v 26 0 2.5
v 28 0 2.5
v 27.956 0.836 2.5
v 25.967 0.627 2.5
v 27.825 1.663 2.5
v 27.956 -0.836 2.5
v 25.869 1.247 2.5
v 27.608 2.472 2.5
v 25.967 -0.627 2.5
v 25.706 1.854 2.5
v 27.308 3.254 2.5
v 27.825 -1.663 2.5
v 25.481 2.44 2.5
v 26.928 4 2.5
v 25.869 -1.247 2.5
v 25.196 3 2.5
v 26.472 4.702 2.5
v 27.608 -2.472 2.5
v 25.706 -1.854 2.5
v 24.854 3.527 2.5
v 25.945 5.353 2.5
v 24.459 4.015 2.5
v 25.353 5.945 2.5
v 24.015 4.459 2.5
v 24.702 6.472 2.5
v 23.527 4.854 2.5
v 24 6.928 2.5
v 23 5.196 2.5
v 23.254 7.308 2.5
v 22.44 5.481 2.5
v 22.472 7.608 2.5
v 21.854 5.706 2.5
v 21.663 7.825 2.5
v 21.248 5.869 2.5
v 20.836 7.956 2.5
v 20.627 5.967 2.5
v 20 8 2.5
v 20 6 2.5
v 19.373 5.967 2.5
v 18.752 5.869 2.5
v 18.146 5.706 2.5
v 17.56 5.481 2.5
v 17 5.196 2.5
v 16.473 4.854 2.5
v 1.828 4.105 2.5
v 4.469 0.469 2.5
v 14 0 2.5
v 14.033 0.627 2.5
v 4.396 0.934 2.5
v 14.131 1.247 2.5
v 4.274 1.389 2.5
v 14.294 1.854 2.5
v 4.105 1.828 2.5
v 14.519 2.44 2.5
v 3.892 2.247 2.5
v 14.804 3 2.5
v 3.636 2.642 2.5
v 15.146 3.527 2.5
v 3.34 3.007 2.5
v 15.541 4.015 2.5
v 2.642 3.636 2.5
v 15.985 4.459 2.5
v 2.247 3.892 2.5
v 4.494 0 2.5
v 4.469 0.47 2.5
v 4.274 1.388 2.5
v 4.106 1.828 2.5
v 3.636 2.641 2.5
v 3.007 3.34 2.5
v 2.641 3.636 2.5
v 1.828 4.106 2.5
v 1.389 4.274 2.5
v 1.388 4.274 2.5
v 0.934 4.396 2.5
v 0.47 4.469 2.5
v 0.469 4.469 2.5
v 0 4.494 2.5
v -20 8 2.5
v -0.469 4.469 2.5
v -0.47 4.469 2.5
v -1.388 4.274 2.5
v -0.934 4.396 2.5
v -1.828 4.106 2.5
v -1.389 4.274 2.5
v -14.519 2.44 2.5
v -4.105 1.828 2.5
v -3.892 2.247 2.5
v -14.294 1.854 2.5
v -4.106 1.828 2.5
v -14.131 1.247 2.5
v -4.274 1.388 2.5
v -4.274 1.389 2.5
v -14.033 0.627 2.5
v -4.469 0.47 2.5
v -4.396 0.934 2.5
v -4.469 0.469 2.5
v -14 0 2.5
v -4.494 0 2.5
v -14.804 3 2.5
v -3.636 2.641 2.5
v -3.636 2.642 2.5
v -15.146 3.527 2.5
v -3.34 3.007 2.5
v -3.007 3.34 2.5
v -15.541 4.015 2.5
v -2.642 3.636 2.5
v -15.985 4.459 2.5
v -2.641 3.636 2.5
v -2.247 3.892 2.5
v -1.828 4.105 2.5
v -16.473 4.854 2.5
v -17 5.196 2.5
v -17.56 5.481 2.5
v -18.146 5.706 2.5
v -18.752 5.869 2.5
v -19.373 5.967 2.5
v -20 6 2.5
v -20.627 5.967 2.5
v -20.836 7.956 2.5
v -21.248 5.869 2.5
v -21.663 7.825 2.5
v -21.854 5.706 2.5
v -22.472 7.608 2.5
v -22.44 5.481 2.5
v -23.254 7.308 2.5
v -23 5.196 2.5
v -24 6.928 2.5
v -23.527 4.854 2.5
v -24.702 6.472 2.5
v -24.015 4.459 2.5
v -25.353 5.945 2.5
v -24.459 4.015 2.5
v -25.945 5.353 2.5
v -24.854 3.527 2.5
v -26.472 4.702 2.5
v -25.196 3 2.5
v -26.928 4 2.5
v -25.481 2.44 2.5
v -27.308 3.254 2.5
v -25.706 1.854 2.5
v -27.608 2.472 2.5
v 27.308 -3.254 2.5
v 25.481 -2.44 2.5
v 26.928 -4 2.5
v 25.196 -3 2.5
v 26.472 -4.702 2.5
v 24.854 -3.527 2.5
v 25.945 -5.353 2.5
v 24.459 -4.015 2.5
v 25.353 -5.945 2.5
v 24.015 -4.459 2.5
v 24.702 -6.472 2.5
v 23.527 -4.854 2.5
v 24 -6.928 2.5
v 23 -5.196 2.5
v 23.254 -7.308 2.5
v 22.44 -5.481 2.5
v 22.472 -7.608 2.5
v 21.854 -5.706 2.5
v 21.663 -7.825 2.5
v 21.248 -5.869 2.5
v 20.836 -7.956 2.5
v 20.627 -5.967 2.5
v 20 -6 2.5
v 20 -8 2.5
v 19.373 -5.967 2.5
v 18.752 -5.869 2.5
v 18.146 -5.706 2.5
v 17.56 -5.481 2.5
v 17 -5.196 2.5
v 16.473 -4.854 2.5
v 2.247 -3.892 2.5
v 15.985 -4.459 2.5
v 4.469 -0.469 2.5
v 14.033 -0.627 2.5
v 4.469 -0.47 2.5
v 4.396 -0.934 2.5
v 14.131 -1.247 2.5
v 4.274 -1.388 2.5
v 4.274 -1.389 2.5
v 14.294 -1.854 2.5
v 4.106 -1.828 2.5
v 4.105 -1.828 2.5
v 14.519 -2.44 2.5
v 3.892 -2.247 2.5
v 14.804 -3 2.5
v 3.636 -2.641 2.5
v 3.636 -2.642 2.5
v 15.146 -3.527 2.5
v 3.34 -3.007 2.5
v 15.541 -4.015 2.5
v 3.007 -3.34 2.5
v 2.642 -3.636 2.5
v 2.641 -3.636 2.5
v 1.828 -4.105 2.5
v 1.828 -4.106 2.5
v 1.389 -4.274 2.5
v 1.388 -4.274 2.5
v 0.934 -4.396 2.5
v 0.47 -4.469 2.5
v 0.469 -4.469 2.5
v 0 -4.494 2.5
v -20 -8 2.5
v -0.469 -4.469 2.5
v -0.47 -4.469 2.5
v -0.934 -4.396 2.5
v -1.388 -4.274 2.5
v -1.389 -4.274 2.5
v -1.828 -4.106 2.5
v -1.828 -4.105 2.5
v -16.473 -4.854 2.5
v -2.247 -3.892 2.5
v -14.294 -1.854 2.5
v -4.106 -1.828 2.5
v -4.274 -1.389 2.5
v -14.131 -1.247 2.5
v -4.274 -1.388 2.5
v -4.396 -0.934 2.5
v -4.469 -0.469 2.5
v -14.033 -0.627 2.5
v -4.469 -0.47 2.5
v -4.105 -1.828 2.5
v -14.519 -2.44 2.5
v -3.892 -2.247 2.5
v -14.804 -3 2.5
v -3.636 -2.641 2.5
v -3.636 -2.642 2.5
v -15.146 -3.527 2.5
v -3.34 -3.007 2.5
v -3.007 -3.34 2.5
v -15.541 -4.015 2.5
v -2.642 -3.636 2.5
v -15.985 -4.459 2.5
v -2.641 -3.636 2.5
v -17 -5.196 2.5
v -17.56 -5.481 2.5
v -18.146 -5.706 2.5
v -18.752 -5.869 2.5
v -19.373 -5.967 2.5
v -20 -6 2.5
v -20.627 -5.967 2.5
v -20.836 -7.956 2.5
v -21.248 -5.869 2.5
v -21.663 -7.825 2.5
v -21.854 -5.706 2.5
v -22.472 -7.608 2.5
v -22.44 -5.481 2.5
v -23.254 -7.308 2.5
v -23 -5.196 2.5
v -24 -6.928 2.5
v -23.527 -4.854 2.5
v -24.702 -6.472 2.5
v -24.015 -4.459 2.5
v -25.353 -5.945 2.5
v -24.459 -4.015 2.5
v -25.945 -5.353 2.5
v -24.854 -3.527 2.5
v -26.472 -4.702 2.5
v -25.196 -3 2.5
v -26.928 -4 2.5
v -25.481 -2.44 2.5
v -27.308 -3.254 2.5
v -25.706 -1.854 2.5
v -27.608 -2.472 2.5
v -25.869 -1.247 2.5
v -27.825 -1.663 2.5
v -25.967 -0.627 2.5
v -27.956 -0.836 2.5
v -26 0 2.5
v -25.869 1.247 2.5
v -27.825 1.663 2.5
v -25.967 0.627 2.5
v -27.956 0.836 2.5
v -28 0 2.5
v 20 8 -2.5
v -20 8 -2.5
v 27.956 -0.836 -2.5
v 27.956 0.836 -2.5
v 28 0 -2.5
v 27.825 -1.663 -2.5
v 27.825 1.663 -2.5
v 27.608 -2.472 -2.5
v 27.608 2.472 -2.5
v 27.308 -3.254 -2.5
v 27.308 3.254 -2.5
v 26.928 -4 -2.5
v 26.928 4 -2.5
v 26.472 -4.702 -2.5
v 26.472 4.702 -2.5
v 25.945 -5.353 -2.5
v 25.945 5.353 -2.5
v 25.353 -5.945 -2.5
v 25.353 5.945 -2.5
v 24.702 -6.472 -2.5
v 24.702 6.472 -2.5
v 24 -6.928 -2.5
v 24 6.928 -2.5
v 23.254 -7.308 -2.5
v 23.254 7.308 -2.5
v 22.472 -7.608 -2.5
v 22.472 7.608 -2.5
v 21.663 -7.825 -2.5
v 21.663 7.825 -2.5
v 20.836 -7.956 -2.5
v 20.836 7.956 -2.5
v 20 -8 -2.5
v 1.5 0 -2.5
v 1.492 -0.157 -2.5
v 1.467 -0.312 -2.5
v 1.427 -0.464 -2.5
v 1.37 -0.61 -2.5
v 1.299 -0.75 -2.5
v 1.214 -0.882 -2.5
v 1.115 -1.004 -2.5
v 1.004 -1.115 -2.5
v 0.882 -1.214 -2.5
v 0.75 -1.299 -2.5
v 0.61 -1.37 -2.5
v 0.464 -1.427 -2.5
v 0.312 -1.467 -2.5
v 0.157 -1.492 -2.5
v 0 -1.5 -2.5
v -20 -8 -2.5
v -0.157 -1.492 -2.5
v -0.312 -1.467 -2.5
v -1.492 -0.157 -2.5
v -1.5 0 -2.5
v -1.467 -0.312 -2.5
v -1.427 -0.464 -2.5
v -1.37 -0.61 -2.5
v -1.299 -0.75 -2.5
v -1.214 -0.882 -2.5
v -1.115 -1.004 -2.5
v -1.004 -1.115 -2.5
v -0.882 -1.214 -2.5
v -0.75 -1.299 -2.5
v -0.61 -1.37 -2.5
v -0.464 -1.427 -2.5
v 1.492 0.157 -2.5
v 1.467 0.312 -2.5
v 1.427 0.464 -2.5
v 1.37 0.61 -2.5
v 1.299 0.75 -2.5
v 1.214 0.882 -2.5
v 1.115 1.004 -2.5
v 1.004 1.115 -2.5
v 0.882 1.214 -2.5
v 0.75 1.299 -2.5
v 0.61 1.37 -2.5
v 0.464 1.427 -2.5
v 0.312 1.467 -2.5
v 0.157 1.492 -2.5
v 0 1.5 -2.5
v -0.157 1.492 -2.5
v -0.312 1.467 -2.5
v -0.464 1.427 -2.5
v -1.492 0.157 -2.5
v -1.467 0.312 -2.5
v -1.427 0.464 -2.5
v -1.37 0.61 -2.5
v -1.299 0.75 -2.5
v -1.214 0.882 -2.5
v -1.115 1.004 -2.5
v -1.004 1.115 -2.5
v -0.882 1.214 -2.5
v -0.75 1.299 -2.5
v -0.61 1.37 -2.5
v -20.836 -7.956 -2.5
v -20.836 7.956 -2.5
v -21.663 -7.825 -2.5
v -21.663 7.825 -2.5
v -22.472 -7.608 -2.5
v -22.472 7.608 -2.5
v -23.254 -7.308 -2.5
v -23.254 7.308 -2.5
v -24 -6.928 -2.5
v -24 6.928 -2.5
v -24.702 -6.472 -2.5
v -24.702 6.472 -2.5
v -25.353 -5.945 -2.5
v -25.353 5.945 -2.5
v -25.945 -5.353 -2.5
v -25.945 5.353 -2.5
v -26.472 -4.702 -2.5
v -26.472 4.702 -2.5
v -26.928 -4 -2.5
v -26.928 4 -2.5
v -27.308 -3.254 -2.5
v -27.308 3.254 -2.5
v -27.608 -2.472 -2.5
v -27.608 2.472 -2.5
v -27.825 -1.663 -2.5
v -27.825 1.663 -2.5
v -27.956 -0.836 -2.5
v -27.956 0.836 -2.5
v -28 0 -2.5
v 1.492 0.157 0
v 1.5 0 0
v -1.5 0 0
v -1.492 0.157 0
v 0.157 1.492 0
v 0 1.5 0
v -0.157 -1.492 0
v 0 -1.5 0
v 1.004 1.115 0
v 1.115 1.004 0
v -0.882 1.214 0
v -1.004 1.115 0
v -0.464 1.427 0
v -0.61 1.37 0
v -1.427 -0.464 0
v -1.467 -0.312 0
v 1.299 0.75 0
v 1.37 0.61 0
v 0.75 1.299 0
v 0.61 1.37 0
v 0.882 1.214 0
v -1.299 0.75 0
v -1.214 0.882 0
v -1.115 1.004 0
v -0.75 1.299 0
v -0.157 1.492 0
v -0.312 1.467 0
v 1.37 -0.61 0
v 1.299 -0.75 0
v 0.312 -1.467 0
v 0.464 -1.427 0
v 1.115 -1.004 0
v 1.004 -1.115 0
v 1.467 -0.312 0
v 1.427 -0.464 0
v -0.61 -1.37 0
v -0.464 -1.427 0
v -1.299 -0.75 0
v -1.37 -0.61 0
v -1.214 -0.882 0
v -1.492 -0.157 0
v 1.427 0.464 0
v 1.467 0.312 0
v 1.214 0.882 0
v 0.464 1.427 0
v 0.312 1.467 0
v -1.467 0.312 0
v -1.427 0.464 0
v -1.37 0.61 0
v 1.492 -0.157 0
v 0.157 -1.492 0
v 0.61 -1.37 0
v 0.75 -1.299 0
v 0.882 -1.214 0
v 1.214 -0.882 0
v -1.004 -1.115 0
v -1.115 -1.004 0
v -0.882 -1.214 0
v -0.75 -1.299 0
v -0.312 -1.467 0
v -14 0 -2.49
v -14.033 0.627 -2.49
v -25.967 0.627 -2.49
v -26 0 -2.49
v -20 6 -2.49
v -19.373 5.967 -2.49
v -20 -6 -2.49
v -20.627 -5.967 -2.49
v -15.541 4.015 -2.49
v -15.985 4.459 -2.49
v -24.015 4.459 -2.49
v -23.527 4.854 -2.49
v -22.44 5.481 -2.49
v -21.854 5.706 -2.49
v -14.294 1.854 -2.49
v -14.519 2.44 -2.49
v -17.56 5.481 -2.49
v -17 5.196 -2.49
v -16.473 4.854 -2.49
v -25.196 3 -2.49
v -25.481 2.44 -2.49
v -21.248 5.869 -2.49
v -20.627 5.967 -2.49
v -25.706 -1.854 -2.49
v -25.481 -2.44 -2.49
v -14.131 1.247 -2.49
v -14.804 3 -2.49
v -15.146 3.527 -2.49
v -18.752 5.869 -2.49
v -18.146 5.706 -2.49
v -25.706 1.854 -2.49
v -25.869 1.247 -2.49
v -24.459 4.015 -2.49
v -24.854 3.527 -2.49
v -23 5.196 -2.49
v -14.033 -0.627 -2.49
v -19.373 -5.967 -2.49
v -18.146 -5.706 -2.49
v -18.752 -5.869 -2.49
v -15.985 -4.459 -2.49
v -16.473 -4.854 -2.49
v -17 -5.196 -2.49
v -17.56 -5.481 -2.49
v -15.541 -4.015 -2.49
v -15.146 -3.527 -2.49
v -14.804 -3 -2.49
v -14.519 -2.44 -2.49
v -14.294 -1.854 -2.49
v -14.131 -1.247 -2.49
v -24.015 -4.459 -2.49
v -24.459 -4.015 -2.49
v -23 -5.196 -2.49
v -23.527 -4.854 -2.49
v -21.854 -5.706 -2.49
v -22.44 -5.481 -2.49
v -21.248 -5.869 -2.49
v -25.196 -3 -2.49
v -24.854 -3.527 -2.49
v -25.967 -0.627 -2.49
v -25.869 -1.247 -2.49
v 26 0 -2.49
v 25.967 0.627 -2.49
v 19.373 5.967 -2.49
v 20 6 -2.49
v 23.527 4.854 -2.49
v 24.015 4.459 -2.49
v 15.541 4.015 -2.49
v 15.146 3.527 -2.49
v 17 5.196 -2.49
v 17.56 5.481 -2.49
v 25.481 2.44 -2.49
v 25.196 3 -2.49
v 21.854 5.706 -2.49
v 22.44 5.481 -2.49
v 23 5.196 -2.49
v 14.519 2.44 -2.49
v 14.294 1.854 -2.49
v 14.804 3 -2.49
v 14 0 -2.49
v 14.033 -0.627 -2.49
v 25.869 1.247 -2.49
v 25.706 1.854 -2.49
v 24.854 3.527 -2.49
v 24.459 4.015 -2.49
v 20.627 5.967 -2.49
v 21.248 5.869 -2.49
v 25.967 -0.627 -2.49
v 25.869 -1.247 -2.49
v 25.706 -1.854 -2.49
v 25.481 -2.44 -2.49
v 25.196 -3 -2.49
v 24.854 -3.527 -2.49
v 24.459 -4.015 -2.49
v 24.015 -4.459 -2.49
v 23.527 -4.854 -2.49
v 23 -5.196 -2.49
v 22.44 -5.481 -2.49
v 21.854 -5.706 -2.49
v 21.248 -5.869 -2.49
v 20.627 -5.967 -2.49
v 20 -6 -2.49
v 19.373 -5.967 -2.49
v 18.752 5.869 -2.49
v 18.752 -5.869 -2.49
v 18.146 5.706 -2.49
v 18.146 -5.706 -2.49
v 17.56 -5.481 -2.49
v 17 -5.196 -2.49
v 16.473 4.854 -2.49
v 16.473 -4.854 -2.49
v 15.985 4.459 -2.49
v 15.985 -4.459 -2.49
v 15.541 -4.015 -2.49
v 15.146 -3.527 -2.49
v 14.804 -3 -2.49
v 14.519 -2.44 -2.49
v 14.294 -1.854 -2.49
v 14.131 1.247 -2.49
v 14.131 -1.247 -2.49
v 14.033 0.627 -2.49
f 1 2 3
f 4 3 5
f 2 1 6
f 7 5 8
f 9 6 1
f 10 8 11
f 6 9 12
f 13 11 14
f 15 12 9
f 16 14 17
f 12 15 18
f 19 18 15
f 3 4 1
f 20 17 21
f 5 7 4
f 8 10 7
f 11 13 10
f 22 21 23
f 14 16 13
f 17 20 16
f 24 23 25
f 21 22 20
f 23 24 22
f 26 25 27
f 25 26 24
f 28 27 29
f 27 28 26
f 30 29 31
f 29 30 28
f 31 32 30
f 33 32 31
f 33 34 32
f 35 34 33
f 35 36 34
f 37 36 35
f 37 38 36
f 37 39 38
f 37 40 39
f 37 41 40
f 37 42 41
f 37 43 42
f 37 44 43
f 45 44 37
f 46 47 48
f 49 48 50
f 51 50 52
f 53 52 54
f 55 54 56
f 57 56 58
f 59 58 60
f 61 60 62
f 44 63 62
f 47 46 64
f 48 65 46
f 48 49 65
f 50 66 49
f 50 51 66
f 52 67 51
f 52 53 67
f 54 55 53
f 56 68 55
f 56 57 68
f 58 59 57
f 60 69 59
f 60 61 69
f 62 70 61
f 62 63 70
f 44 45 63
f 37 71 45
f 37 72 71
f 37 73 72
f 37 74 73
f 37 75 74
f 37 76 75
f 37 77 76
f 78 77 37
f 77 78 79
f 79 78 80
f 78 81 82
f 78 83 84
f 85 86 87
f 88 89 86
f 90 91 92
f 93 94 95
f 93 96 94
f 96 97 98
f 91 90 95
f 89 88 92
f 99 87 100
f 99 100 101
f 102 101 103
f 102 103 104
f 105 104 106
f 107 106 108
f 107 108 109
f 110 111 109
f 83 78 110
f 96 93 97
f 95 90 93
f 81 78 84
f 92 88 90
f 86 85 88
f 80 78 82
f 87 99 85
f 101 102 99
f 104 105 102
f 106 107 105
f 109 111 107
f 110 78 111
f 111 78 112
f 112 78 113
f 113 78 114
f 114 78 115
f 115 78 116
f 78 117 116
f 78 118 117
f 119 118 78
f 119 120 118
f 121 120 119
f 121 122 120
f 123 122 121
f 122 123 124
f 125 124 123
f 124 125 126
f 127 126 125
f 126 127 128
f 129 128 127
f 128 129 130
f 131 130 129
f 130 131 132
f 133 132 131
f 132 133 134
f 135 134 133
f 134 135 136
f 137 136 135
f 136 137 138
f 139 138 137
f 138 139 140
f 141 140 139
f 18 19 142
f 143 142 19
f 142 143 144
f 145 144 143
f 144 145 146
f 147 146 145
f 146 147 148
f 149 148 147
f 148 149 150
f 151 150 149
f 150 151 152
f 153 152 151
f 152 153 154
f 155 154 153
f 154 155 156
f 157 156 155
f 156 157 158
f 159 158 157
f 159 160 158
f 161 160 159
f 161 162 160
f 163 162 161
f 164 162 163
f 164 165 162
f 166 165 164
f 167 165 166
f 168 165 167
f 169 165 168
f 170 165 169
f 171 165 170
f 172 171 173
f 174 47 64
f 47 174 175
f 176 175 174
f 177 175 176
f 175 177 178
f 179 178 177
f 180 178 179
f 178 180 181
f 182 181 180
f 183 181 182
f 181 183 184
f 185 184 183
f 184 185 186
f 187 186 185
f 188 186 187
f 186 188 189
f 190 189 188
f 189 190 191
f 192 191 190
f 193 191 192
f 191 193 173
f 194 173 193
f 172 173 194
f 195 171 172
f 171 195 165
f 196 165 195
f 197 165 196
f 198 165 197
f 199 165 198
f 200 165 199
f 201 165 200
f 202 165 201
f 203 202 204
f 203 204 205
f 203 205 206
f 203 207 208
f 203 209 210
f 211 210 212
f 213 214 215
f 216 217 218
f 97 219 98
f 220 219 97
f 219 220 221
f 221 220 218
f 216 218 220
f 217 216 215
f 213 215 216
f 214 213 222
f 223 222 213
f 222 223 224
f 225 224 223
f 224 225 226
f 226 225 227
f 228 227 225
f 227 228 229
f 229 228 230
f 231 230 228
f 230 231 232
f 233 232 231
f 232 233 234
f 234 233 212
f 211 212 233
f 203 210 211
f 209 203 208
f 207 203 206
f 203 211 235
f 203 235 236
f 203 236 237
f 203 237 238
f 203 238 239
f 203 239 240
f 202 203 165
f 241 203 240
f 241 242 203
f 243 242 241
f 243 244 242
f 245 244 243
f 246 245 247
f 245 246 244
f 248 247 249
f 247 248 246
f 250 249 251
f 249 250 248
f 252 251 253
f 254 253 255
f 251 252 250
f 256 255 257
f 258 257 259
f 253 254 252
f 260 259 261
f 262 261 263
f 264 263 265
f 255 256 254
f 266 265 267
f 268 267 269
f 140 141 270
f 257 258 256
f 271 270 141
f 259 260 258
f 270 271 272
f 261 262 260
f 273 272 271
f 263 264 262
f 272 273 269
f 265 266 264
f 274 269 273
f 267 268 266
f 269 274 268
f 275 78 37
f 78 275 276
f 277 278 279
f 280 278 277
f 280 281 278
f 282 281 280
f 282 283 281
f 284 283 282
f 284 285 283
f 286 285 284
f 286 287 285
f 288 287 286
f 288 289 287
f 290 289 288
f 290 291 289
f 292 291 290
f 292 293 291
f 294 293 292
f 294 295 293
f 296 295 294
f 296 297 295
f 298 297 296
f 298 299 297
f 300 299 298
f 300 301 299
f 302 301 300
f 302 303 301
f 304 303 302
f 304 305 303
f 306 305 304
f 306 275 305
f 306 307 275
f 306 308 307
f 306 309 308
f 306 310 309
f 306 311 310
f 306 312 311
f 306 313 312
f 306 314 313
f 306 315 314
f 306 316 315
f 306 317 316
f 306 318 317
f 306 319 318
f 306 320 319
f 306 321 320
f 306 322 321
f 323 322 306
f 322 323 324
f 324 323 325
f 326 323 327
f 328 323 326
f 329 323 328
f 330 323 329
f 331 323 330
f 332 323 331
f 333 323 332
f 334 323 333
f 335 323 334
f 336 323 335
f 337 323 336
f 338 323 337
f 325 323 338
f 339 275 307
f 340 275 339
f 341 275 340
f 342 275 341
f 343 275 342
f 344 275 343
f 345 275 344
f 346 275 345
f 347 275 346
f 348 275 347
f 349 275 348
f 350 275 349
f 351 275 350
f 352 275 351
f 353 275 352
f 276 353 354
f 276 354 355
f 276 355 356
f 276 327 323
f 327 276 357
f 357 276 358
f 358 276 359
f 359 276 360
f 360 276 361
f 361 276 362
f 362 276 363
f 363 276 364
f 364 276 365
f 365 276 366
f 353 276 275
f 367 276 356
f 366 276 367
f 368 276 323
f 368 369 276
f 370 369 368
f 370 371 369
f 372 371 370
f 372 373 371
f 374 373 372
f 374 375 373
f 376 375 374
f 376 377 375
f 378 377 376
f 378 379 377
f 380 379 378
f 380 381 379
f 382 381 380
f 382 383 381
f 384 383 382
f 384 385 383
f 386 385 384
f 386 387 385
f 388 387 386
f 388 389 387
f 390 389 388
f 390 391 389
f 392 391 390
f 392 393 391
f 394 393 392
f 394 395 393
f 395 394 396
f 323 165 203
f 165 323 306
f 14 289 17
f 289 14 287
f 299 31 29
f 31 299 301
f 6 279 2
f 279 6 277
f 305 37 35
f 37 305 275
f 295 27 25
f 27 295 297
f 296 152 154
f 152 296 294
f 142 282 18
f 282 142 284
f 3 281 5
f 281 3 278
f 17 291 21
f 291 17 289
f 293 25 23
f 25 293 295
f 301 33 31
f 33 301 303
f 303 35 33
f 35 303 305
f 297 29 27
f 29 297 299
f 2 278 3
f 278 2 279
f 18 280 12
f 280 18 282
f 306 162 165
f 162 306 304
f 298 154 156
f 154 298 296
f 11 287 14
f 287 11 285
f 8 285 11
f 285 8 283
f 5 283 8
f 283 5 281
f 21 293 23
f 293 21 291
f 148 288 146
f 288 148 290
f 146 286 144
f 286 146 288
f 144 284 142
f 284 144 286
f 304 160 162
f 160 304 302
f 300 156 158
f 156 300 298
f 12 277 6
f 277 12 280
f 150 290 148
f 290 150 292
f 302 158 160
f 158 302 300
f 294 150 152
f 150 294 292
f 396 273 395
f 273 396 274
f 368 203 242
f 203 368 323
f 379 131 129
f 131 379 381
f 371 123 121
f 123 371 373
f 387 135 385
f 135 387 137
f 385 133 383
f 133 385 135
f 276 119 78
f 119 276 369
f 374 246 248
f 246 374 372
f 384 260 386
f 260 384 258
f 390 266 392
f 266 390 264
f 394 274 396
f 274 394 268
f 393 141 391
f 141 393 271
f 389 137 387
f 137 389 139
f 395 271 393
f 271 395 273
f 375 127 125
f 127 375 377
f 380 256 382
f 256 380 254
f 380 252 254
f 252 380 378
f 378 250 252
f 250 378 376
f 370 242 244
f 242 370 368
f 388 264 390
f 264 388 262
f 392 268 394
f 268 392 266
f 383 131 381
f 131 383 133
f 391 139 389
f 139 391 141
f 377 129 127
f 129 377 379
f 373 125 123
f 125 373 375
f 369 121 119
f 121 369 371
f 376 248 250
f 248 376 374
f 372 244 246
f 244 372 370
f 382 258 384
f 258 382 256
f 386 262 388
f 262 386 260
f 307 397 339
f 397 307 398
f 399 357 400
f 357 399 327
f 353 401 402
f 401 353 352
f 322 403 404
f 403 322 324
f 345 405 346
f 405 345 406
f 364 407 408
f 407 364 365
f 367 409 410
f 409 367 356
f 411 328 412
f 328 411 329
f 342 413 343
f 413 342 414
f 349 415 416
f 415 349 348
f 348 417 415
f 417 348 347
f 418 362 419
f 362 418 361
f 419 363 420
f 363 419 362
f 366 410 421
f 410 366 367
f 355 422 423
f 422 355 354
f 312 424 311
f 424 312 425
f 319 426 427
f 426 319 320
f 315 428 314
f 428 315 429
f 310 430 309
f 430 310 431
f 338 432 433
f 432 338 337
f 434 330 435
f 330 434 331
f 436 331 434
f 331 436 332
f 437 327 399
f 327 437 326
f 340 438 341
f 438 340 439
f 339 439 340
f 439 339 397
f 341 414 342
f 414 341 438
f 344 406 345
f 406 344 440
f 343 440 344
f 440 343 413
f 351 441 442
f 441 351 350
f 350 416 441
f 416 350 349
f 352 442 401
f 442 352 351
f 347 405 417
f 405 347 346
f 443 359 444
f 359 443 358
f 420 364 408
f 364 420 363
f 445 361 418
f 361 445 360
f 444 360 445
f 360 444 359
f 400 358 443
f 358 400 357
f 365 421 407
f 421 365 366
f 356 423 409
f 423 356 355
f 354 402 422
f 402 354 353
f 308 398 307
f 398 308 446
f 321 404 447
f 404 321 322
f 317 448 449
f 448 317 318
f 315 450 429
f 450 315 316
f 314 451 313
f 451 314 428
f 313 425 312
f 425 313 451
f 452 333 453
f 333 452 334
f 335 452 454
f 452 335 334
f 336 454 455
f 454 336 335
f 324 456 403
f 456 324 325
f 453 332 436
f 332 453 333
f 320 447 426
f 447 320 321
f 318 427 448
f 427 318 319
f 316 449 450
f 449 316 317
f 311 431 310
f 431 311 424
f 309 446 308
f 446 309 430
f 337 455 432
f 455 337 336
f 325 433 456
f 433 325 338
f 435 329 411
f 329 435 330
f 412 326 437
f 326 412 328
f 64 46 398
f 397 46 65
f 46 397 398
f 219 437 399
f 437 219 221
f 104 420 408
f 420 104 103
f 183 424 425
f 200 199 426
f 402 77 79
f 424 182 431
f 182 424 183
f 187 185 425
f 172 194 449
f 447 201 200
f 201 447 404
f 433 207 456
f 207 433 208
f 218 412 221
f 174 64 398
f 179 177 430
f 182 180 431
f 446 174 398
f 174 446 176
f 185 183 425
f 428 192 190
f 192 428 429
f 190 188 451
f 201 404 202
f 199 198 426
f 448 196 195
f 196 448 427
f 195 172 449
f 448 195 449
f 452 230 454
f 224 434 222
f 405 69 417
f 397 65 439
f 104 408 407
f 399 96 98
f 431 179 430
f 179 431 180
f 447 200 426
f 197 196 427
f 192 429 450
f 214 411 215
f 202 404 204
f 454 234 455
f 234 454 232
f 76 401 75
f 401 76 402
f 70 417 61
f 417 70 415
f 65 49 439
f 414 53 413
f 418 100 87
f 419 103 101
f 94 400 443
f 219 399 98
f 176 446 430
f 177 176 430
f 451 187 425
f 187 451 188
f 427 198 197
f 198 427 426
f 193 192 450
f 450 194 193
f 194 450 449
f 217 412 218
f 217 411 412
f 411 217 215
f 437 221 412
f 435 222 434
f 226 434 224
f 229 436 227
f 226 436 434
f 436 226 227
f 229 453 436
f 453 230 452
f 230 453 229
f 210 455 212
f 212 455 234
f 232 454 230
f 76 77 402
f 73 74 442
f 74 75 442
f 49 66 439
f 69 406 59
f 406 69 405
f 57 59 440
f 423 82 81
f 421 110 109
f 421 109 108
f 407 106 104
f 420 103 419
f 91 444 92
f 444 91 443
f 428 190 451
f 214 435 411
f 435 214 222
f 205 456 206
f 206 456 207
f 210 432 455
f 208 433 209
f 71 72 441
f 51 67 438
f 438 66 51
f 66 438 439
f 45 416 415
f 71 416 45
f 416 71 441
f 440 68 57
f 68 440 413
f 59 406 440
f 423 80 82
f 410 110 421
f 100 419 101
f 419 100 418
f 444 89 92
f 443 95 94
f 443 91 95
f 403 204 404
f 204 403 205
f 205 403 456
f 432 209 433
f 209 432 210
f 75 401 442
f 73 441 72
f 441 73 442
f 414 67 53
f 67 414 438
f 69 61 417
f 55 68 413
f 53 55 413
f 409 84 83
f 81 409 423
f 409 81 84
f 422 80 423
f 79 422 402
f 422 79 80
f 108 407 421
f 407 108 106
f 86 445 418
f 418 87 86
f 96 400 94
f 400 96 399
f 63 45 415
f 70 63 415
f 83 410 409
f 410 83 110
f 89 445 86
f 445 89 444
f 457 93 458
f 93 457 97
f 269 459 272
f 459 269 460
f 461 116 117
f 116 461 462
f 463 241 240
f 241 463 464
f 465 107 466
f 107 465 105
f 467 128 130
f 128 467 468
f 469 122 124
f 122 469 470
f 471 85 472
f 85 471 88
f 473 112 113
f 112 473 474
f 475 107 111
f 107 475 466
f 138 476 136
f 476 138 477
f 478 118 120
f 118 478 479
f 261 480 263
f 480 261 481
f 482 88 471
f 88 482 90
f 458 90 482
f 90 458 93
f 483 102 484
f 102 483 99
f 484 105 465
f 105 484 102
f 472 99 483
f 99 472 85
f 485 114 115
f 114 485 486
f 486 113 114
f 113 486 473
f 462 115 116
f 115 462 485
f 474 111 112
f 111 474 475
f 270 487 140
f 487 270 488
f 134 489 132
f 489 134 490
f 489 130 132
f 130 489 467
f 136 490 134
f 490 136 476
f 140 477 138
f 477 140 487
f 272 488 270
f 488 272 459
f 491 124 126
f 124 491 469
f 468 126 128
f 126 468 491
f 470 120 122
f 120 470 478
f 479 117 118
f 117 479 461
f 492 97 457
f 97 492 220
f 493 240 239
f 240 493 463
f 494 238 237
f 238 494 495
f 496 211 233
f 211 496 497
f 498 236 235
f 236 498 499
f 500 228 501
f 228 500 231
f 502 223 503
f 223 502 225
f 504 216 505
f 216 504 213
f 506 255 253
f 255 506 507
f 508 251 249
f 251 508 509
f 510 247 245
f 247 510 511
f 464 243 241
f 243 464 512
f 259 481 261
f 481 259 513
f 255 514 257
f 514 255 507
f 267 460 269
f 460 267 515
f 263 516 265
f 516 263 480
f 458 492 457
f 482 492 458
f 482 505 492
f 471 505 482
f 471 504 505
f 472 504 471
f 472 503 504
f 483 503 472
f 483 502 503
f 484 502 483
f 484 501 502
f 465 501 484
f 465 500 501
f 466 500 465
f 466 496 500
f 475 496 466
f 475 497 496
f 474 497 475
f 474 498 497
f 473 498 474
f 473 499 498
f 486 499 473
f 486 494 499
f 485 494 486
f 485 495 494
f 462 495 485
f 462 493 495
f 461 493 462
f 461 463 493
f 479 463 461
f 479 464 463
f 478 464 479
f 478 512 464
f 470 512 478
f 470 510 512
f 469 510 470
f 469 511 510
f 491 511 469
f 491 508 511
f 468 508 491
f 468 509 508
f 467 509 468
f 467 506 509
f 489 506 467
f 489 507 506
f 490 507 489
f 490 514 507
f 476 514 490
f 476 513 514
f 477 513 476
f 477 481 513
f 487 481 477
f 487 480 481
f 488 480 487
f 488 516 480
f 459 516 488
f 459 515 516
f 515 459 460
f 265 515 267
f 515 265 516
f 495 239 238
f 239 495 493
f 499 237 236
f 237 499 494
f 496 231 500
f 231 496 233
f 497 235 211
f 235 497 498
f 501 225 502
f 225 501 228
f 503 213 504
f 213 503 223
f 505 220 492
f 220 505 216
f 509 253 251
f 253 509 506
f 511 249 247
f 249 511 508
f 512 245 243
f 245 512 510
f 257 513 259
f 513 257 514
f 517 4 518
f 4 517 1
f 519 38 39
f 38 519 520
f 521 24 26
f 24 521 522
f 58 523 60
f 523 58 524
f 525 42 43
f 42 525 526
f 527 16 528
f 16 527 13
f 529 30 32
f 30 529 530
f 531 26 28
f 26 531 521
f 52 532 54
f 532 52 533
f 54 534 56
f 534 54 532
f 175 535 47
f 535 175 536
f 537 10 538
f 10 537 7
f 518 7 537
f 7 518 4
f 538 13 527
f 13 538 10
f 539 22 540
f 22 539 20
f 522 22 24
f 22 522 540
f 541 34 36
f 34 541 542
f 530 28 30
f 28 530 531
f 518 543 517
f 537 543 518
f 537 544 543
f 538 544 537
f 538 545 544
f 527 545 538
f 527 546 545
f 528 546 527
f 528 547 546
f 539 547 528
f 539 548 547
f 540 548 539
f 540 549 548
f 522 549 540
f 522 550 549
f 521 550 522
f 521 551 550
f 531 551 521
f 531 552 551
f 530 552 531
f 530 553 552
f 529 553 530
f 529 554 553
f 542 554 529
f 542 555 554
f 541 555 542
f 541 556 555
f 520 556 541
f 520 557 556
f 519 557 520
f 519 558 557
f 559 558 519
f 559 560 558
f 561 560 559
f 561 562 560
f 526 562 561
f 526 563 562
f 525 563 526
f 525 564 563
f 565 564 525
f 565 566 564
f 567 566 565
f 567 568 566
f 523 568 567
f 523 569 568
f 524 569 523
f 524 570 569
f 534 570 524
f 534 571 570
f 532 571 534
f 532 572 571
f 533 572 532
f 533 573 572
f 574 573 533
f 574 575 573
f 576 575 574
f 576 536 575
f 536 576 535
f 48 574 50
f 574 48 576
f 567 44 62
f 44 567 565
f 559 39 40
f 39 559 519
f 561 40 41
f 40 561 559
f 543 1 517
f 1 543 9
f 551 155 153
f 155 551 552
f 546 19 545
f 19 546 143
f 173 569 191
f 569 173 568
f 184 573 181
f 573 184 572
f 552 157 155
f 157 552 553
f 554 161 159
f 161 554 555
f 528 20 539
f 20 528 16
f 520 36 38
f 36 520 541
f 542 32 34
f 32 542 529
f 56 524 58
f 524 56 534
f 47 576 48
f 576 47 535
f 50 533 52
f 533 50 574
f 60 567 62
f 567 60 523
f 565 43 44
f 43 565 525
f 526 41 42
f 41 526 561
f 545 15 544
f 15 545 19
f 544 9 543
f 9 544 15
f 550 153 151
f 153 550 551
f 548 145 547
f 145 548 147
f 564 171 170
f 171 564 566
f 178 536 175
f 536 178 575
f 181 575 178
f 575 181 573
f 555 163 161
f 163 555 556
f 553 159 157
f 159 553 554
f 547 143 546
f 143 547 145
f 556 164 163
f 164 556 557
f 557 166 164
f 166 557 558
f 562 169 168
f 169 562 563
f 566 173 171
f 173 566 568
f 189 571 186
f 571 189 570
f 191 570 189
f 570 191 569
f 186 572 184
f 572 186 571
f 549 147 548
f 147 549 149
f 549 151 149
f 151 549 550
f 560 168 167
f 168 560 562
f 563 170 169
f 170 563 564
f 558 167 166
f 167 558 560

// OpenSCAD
thickness = 2;
magnetThickness = 5;
magnetDiameter = 12;
puckThickness = 5;
majorRadius = 40;
minorRadius = 50;
viewportRadius = 12;
mountingScrewDiameter = 3;


cylinderOffset = 10;
magnetRadius = magnetDiameter/2;
mountingScrewRadius = mountingScrewDiameter/2;

$fn=60;
difference(){
    translate([0,0,0]){
        cube([viewportRadius*2+magnetRadius*2+thickness*2, magnetRadius*2+thickness*2, puckThickness], center=true);
        translate([(viewportRadius + magnetRadius + thickness),0,0]){
            cylinder(puckThickness, magnetRadius+thickness, magnetRadius+thickness, center=true);
        }
        translate([-(viewportRadius + magnetRadius + thickness),0,0]){
            cylinder(puckThickness, magnetRadius+thickness, magnetRadius+thickness, center=true);
        }
    }
    translate([0,0,0]){
        cylinder(puckThickness*2, mountingScrewRadius, mountingScrewRadius, center=true);
        cylinder(puckThickness*.501, mountingScrewRadius, mountingScrewRadius*3, center=false);
    }
    translate([-(viewportRadius+magnetRadius+thickness),0,puckThickness/2-magnetThickness+0.01]){
        cylinder(magnetThickness, magnetRadius, magnetRadius, center=false);
    }
    translate([(viewportRadius+magnetRadius+thickness),0,puckThickness/2-magnetThickness+0.01]){
        cylinder(magnetThickness, magnetRadius, magnetRadius, center=false);
    }
}
